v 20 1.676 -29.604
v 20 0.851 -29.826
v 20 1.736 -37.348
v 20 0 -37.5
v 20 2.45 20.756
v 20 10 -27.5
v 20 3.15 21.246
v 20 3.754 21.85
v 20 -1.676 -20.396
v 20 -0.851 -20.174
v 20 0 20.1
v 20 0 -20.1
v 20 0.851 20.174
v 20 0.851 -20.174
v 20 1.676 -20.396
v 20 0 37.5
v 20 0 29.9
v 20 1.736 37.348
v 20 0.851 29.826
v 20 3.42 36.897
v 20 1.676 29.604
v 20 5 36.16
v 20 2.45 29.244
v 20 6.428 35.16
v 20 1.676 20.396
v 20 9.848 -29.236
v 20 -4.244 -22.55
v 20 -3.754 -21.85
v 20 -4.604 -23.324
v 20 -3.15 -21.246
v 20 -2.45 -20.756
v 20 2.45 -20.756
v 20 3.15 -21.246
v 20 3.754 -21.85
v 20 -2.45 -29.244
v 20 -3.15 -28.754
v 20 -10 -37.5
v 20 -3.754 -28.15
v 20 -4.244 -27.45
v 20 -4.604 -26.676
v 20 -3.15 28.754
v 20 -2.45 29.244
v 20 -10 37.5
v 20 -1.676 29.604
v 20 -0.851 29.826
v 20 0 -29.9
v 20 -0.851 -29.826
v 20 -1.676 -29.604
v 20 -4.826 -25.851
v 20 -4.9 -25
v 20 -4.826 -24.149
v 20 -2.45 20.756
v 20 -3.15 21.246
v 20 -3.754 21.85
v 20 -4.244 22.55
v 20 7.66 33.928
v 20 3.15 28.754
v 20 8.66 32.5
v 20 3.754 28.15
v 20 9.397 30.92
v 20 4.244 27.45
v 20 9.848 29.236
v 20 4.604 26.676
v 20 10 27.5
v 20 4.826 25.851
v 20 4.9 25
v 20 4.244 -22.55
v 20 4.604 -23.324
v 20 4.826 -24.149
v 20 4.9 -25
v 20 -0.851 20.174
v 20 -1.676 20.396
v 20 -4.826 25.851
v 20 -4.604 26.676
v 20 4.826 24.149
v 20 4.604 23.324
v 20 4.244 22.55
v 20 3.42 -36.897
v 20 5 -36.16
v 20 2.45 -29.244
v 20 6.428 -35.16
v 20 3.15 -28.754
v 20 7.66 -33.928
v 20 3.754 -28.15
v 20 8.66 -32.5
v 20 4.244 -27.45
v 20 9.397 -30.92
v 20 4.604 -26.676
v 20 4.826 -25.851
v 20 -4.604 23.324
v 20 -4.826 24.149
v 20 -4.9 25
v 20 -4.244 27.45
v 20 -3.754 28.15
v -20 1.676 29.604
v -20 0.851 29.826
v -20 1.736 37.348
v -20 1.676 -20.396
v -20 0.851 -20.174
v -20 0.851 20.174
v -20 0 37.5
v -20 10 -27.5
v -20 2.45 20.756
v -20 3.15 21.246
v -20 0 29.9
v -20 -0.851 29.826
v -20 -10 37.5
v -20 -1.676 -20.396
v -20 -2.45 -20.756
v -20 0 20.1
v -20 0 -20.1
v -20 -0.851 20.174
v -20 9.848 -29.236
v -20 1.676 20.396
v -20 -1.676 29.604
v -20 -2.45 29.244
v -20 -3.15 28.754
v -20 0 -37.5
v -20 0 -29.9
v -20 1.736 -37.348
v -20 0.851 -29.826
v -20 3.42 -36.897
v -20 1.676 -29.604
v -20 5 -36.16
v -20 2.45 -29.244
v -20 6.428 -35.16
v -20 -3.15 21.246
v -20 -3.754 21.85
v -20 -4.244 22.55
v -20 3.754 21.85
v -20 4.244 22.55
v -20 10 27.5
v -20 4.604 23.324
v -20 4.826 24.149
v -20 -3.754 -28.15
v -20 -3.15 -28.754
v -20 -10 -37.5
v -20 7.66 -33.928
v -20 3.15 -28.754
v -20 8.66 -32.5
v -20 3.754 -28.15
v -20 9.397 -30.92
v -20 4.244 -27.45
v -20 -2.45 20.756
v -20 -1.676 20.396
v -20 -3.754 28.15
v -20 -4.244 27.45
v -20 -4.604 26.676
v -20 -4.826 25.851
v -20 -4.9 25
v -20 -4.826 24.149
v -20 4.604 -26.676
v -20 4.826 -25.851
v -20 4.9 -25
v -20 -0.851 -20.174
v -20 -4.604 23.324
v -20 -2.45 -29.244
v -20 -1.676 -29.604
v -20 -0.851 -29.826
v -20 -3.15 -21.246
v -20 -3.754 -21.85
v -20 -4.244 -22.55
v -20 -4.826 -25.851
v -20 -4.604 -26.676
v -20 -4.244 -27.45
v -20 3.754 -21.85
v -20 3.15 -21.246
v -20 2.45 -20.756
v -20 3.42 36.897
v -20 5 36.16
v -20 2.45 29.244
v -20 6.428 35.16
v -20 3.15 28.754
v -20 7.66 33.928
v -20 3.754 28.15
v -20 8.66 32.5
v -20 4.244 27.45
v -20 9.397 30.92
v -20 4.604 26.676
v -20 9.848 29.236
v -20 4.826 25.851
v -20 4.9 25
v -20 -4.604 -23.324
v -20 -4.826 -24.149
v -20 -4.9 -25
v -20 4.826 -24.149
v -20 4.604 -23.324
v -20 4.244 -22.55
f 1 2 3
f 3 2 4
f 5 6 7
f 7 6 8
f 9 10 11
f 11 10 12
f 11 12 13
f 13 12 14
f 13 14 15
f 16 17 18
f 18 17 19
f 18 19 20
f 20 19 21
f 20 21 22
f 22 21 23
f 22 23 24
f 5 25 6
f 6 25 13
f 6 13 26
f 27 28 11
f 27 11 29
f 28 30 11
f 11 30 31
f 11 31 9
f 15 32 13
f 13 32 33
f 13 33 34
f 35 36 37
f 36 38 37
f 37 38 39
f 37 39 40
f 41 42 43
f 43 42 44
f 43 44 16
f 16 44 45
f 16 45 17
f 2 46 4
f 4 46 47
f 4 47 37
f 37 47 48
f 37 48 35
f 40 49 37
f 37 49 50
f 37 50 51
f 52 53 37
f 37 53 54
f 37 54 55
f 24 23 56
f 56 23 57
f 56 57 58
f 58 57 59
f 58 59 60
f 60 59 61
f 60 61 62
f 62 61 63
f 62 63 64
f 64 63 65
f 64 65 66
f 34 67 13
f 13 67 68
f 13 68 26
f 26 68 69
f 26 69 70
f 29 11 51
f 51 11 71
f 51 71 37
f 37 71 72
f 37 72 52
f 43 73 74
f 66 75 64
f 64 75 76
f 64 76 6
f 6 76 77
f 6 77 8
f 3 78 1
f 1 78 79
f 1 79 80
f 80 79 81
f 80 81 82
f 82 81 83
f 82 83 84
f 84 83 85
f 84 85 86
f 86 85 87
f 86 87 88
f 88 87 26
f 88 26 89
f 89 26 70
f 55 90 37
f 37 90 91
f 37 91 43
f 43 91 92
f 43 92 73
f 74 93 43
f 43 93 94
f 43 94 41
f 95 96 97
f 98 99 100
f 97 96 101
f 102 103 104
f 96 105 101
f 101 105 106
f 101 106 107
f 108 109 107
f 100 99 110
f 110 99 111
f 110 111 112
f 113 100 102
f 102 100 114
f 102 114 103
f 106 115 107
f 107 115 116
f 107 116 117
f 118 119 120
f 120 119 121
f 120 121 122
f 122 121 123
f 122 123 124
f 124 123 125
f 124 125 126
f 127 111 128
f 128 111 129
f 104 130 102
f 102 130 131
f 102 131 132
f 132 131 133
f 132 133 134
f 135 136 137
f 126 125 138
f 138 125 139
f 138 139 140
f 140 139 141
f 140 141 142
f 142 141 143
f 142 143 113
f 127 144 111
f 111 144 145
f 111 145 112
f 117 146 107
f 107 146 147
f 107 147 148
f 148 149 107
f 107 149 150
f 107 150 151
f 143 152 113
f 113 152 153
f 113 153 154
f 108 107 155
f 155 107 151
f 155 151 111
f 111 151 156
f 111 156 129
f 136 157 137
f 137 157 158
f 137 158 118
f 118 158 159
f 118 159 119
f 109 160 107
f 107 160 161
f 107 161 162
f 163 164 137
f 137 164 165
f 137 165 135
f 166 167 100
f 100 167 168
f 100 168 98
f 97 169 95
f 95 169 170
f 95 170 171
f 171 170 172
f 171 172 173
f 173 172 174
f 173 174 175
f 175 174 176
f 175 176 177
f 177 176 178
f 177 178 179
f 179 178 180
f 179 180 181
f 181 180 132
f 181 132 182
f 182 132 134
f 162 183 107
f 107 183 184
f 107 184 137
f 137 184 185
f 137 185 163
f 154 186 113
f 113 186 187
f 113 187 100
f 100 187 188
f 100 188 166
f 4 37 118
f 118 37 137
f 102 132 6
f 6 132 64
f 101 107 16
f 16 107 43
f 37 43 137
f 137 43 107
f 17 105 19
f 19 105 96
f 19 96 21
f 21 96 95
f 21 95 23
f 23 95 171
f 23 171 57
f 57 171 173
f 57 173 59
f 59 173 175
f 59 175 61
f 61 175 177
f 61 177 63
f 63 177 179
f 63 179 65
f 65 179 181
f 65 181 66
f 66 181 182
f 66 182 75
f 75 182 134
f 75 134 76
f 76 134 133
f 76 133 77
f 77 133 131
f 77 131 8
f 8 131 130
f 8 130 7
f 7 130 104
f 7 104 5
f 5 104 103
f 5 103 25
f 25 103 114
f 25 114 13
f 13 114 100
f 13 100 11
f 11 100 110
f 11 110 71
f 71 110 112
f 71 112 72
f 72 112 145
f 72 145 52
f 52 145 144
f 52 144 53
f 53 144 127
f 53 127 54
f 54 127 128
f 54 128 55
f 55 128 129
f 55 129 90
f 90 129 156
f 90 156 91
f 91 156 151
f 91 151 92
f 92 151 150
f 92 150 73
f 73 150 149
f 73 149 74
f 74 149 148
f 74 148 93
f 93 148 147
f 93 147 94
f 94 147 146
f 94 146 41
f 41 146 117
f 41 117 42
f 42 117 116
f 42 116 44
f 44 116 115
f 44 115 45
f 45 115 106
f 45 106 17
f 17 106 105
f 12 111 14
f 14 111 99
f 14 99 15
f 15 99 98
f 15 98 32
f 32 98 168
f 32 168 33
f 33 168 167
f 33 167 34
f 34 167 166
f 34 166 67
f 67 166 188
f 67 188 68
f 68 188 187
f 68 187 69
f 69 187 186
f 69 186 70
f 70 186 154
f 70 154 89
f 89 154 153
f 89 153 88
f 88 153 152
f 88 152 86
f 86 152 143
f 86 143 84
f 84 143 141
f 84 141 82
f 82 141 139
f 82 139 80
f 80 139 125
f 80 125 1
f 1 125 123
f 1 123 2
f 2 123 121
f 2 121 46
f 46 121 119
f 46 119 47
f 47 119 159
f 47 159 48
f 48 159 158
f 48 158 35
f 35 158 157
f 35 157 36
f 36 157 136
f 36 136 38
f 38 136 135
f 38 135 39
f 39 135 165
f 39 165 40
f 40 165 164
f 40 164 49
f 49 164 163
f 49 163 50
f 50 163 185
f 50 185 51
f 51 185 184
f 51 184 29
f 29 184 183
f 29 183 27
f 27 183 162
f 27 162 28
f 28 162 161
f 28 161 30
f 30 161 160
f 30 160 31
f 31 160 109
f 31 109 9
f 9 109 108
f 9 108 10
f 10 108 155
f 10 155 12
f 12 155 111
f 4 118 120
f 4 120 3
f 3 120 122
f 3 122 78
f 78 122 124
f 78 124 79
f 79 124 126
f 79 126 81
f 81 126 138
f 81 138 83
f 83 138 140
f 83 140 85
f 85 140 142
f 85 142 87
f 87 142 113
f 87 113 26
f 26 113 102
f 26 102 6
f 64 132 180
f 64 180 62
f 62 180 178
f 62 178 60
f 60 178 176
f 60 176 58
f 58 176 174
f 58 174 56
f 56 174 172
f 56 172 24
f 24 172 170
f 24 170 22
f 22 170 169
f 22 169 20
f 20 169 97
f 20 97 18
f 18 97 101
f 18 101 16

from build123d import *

# Parameters (mm, degrees)
SKETCH1_W           = 75
SKETCH1_H           = 20
SKETCH1_R           = 4.9
BOSS_EXTRUDE1_DEPTH = 20
FILLET1_R           = 10


with BuildPart() as part:
    # Sketch1 → Boss-Extrude1 (new, symmetric)
    with BuildSketch(Plane(origin=(0, 0, 0), x_dir=(0, 0, -1), z_dir=(1, 0, 0))):
        Rectangle(SKETCH1_W, SKETCH1_H)
        with Locations((-25, 0)):
            Circle(SKETCH1_R, mode=Mode.SUBTRACT)
        with Locations((25, 0)):
            Circle(SKETCH1_R, mode=Mode.SUBTRACT)
    extrude(amount=BOSS_EXTRUDE1_DEPTH, both=True)

    # Fillet1
    fillet1_edges = [part.edges().sort_by_distance(p)[0] for p in [
        (0, 10, 37.5),
        (0, 10, -37.5),
    ]]
    fillet(fillet1_edges, radius=FILLET1_R)


solid = part.part
